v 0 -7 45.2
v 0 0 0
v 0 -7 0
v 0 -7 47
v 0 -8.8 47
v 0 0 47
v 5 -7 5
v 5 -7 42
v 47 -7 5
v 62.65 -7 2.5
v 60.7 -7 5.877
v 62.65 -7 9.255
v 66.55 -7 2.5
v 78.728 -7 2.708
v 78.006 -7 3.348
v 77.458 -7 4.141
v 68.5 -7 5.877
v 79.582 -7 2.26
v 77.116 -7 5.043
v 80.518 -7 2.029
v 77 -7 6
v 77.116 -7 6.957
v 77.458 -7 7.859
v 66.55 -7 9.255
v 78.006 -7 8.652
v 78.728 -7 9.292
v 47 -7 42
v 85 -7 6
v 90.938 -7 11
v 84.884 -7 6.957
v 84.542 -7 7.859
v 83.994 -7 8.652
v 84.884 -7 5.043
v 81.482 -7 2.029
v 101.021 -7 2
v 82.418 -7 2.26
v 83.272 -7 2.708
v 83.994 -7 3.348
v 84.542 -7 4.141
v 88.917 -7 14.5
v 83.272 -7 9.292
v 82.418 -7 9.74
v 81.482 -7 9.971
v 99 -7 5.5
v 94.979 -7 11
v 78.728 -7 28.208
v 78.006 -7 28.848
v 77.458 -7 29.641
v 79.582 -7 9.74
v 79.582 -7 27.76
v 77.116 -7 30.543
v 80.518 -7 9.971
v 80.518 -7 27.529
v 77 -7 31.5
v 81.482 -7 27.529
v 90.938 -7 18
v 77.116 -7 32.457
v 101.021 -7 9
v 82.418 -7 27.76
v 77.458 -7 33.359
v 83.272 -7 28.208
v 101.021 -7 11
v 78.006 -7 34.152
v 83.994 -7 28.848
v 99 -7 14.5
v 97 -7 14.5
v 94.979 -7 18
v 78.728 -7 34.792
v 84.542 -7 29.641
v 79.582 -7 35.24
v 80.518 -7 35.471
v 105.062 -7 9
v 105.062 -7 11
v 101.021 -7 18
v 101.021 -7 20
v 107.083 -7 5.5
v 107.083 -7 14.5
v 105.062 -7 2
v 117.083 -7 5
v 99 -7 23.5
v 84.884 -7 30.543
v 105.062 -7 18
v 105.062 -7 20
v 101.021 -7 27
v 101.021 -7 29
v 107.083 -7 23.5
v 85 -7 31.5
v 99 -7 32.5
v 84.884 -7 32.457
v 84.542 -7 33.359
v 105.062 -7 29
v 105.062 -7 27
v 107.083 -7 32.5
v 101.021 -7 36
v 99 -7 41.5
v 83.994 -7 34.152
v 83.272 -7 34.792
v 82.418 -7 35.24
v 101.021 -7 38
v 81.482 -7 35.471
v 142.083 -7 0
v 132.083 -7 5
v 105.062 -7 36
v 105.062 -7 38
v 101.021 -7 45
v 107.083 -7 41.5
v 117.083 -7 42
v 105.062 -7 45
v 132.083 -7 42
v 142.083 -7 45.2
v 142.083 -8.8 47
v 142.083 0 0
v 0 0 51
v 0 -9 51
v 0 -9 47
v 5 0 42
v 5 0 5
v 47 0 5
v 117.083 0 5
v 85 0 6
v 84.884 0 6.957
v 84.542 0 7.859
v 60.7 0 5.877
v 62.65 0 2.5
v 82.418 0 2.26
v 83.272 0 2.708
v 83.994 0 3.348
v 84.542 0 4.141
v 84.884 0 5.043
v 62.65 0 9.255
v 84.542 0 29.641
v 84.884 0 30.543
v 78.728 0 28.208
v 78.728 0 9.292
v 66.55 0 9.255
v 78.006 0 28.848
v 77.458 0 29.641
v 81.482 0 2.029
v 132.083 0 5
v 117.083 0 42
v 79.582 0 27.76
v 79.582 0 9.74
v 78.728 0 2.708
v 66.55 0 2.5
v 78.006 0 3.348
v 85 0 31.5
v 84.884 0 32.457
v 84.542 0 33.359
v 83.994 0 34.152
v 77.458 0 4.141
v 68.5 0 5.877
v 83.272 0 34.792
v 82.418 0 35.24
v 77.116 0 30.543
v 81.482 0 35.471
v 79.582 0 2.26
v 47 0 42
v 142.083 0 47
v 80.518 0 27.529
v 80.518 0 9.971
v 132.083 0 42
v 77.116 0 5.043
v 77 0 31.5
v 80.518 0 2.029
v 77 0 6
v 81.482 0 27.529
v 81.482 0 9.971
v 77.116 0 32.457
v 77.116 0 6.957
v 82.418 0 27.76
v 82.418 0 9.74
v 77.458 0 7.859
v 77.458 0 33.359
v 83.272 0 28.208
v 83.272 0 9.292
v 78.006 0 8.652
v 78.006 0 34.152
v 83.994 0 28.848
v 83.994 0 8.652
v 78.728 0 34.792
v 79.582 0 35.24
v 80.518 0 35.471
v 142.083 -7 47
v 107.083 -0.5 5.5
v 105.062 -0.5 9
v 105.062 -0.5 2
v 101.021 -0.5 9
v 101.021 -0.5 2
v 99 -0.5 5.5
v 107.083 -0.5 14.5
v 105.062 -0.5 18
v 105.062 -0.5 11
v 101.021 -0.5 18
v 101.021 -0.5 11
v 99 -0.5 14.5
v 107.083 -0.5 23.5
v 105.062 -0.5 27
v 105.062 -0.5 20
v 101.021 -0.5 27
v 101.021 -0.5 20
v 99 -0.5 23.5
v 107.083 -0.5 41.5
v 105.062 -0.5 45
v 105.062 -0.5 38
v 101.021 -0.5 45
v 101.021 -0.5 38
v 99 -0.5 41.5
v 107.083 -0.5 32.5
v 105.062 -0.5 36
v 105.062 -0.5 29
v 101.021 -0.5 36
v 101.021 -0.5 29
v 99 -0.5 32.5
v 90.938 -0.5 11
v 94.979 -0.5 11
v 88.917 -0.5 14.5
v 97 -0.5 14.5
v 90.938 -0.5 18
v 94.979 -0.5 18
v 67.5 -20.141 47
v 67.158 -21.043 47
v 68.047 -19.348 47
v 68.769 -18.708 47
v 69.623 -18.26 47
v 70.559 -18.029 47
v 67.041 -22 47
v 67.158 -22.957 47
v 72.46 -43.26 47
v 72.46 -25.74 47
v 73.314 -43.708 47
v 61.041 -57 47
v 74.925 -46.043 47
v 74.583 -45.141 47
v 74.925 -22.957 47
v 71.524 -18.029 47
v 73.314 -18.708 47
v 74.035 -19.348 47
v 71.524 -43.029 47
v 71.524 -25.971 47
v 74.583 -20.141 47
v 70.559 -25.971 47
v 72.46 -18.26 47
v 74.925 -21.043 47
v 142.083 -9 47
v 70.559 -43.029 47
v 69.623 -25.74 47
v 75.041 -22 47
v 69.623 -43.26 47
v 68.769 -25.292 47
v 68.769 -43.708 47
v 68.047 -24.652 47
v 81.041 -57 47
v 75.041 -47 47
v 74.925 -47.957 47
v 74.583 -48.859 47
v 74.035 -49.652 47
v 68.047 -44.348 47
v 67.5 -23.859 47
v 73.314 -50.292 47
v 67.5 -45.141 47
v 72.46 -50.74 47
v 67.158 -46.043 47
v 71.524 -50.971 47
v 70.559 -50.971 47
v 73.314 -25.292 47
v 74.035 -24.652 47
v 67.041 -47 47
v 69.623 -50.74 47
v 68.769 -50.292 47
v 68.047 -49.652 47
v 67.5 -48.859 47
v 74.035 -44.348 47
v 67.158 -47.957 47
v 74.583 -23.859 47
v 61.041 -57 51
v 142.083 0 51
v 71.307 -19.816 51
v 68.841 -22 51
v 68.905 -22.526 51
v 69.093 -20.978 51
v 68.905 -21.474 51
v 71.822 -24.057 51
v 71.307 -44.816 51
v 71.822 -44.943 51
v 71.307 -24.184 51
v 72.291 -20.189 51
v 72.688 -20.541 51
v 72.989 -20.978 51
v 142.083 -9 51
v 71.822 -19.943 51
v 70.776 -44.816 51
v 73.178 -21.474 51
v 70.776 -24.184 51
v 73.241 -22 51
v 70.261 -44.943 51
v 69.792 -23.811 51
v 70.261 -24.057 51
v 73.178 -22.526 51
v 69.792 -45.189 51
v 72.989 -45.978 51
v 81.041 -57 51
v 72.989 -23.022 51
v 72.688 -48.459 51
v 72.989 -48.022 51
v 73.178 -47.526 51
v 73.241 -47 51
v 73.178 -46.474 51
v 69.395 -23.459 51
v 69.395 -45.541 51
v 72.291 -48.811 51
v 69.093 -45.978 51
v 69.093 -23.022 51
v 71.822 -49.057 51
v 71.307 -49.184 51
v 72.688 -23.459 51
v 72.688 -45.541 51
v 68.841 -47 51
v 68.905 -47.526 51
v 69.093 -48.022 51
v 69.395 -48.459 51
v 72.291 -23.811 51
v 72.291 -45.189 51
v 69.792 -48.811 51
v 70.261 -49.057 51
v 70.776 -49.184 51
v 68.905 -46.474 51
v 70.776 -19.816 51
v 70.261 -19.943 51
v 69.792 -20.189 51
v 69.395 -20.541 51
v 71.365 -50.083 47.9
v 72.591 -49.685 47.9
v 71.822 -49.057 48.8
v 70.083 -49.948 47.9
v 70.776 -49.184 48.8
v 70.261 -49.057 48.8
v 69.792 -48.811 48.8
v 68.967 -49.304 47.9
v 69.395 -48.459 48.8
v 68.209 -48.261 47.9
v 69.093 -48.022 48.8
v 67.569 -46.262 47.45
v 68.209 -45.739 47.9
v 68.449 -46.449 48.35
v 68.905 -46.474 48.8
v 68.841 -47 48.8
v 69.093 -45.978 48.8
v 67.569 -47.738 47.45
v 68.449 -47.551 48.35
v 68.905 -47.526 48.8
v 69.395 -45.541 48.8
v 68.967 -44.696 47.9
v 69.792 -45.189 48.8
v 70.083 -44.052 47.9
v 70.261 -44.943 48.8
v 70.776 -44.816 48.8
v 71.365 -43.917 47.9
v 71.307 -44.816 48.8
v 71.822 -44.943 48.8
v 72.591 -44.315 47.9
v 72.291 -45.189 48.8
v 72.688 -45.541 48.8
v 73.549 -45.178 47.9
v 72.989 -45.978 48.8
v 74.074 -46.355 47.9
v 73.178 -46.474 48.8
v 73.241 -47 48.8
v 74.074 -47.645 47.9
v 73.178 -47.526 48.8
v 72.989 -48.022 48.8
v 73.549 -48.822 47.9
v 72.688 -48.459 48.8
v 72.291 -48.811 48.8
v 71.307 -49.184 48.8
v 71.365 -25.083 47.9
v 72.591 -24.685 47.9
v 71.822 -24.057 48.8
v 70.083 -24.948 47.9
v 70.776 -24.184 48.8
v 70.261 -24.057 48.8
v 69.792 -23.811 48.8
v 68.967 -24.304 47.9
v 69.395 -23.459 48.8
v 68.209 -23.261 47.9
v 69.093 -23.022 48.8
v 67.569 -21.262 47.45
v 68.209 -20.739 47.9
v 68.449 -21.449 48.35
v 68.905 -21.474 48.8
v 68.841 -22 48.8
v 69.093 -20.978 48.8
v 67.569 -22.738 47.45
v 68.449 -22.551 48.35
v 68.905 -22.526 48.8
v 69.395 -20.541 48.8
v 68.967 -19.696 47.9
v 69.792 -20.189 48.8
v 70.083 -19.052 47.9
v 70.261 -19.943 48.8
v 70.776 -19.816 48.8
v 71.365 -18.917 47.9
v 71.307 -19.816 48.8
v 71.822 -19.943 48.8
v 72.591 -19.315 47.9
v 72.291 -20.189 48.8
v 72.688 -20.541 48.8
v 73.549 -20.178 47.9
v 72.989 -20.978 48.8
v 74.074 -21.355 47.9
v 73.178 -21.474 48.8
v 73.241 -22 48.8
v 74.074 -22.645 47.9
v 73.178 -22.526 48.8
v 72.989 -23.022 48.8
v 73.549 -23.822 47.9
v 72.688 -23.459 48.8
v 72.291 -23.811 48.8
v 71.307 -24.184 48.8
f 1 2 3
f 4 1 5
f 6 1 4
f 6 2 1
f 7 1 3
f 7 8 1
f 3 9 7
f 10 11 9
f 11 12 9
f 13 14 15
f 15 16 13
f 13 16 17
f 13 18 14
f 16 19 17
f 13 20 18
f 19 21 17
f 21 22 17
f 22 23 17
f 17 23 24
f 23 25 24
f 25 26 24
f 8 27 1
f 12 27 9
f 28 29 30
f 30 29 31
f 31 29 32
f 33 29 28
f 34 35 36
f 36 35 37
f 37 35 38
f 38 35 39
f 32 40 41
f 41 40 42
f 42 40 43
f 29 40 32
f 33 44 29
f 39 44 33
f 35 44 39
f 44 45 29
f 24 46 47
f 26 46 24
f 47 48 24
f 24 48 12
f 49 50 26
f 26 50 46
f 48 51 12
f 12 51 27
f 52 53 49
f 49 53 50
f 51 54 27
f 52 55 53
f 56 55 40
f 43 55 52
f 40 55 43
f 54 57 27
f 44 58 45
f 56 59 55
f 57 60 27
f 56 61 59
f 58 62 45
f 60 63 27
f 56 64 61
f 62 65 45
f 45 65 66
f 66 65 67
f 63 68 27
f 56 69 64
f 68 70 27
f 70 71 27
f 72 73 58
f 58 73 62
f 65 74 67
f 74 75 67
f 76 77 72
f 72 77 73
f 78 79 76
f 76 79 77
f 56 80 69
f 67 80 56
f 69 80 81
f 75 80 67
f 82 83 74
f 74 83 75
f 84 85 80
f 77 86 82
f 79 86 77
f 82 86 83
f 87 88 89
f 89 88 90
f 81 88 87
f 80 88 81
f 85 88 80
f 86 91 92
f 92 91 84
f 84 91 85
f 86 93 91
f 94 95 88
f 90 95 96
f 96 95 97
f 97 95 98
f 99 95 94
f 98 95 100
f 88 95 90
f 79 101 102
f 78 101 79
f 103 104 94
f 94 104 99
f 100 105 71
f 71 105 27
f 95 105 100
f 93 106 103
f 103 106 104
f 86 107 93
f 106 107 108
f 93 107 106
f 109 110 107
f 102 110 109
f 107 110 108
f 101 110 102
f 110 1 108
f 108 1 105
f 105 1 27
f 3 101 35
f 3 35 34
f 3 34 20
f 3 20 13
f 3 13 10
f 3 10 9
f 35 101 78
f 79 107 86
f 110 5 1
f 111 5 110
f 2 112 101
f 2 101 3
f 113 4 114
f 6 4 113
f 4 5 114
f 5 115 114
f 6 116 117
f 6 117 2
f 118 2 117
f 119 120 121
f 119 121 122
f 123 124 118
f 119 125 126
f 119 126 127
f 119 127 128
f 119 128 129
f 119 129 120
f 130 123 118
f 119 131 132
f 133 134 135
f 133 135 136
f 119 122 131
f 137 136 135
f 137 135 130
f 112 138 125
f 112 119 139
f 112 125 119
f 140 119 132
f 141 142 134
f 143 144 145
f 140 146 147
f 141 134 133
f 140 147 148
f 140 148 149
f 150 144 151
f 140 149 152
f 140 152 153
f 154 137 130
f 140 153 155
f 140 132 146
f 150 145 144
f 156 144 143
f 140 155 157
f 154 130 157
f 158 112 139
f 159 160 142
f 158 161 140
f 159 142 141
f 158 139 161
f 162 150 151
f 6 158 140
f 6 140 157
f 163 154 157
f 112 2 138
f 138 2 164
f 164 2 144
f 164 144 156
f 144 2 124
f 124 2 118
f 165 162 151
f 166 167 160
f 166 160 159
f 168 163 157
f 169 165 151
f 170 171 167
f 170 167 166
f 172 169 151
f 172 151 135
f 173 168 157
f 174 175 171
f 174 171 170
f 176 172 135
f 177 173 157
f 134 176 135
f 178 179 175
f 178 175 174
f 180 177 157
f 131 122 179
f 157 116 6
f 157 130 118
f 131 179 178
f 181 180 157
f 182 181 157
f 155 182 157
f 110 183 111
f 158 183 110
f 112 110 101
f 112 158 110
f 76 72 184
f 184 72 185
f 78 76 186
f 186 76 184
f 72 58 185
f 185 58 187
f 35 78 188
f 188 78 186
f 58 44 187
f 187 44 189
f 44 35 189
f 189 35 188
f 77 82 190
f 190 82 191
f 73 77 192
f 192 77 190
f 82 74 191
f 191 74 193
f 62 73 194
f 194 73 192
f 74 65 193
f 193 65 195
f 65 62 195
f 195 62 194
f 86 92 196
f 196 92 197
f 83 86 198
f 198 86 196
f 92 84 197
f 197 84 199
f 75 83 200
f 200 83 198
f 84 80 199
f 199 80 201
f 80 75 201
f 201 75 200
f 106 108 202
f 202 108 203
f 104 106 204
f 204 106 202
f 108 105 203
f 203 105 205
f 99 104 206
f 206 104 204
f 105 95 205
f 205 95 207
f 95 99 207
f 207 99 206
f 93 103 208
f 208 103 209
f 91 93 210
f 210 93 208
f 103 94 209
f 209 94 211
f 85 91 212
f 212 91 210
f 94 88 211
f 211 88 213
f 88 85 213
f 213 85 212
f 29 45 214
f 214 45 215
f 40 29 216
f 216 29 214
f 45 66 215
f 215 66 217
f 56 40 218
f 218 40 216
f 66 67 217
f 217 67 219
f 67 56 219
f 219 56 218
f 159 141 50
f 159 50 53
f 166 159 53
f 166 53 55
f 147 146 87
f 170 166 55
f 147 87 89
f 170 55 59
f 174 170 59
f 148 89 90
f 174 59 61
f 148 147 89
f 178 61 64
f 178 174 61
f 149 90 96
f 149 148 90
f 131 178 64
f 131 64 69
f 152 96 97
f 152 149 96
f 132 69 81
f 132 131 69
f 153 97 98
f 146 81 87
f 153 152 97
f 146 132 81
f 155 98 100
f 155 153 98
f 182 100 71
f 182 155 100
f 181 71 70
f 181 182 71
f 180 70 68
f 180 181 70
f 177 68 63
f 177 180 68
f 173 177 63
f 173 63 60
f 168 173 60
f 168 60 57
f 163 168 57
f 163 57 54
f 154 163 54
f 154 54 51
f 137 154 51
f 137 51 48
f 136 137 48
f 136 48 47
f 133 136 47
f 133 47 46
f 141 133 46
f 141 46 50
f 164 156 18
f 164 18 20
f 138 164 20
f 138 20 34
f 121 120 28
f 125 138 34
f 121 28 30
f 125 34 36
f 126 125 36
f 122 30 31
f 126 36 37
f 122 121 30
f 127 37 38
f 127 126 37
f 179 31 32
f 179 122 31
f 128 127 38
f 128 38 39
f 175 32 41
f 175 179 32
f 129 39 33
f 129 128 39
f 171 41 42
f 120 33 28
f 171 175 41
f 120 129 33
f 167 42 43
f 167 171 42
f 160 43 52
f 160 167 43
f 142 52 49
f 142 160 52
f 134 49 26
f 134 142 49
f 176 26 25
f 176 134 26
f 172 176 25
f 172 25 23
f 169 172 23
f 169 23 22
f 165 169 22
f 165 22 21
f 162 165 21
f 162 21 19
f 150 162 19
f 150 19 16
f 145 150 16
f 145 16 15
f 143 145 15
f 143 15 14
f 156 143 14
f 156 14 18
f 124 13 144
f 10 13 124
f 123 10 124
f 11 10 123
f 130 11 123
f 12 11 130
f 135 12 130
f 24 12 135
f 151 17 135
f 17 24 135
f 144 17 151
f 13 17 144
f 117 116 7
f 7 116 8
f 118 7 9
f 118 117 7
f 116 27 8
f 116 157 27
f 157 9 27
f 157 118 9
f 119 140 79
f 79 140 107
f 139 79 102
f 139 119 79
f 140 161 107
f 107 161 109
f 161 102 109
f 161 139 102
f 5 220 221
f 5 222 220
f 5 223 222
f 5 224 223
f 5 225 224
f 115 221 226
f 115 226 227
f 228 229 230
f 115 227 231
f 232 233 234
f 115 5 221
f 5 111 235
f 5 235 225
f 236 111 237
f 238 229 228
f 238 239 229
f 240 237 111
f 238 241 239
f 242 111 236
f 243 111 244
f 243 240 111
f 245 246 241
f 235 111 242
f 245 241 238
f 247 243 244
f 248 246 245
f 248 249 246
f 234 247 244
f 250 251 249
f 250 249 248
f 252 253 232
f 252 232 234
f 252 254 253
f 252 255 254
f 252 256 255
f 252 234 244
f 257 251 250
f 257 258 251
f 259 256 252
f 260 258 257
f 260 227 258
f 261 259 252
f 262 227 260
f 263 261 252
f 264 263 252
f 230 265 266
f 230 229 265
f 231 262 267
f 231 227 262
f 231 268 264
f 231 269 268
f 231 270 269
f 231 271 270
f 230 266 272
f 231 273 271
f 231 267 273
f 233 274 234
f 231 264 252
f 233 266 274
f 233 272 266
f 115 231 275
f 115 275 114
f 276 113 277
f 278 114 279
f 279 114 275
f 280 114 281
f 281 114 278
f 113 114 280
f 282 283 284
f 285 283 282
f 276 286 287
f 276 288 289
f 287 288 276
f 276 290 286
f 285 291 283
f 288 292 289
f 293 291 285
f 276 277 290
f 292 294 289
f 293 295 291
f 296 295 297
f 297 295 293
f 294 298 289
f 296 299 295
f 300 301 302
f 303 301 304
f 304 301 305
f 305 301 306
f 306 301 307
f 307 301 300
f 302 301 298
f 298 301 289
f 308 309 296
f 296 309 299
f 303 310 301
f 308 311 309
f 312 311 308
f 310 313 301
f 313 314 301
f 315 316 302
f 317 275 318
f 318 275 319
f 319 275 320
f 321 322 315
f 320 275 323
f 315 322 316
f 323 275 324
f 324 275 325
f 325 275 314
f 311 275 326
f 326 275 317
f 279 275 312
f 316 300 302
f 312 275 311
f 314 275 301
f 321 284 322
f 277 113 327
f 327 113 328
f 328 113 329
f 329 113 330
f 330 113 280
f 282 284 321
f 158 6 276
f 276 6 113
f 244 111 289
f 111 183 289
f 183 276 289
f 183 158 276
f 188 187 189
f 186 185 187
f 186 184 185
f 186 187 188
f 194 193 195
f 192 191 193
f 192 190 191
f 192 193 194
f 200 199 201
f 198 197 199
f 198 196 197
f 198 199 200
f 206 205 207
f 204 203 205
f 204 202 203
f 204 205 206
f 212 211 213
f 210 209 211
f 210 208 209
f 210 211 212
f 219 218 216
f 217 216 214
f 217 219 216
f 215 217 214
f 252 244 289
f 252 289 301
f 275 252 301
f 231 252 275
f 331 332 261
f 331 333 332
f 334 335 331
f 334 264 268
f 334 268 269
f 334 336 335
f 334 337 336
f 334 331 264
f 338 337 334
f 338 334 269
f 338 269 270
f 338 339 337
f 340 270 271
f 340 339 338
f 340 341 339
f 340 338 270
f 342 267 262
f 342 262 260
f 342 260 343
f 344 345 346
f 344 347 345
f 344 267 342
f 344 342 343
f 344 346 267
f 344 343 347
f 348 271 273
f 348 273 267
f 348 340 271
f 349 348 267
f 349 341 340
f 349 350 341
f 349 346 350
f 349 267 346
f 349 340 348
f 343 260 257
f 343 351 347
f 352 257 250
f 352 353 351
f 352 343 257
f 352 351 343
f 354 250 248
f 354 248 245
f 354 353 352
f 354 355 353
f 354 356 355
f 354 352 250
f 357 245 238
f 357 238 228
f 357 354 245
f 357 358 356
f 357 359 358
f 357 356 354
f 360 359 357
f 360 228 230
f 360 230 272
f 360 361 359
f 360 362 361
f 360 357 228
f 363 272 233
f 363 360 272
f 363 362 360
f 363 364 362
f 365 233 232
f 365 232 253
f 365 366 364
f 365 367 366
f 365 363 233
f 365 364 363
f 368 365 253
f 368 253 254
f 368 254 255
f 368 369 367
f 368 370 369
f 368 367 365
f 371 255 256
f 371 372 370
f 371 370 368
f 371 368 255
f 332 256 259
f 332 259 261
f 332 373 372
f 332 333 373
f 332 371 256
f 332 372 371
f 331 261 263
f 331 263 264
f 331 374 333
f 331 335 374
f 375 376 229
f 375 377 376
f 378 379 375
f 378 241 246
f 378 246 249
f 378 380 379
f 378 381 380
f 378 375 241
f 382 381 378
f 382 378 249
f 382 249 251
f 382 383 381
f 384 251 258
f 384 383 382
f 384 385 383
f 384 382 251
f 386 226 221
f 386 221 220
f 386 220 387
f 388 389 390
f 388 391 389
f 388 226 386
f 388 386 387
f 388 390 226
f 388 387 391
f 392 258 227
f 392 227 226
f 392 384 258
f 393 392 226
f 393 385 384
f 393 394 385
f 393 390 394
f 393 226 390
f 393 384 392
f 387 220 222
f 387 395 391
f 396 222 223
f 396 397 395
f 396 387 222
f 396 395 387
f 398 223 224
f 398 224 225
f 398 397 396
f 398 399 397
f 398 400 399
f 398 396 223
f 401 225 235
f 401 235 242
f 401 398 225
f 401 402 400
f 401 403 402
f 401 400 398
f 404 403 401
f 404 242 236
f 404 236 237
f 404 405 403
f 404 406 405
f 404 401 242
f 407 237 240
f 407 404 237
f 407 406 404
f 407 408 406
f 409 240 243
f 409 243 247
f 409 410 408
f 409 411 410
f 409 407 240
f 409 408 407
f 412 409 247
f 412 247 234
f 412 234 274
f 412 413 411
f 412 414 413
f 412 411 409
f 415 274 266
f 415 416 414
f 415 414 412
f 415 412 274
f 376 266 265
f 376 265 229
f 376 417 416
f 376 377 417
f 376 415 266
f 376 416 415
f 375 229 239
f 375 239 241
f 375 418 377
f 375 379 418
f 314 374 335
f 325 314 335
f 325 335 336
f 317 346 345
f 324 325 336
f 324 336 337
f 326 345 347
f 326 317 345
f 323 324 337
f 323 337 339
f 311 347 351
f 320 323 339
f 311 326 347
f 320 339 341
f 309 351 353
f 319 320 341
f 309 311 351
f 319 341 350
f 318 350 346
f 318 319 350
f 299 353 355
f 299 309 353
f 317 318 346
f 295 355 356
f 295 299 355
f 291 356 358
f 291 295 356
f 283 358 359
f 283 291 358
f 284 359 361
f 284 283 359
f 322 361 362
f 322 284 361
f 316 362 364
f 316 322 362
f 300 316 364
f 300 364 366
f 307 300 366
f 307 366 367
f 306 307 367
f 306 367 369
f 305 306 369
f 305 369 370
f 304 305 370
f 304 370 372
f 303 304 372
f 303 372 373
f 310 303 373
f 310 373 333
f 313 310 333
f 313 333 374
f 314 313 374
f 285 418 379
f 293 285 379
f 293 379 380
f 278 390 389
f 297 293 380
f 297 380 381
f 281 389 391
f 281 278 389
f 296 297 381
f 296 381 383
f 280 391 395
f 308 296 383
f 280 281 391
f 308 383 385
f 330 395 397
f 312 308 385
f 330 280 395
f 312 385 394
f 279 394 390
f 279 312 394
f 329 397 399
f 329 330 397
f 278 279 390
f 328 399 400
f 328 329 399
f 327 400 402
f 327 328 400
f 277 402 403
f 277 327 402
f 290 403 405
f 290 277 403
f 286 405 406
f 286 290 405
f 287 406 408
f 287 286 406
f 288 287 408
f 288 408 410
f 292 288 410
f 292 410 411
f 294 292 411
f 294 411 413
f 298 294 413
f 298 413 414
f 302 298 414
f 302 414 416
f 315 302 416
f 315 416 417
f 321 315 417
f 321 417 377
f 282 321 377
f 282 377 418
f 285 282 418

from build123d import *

# Parameters (mm, degrees)
SKETCH_W            = 142.082904
SKETCH_H            = 47
SKETCH_R            = 4
SKETCH_W_2          = 42
SKETCH_H_2          = 37
SKETCH_W_3          = 15
PAD_DEPTH           = 7
POCKET_DEPTH        = 6.5
LINEARPATTERN_COUNT = 5
LINEARPATTERN_PITCH = 9
POCKET001_DEPTH     = 6.5
PAD001_DEPTH        = 4
CHAMFER_SIZE        = 1.8
HOLE_D              = 4.4
HOLE_DEPTH          = 25
HOLE_CSINK_D        = 8
HOLE_CSINK_ANGLE    = 90
POCKET002_DEPTH     = 7.001


with BuildPart() as part:
    # Sketch → Pad (new body)
    with BuildSketch(Plane.XZ):
        with Locations((71.041452, 23.5)):
            Rectangle(SKETCH_W, SKETCH_H)
        with Locations((81, 31.5)):
            Circle(SKETCH_R, mode=Mode.SUBTRACT)
        with Locations((81, 6)):
            Circle(SKETCH_R, mode=Mode.SUBTRACT)
        with Locations((26, 23.5)):
            Rectangle(SKETCH_W_2, SKETCH_H_2, mode=Mode.SUBTRACT)
        with Locations((124.582904, 23.5)):
            Rectangle(SKETCH_W_3, SKETCH_H_2, mode=Mode.SUBTRACT)
    extrude(amount=PAD_DEPTH)

    # Sketch001 (on Face16 of Pad) → Pocket (cut)
    with BuildSketch(Plane.XZ.offset(7)):
        Polygon((105.062178, 45), (101.020726, 45), (99, 41.5), (101.020726, 38), (105.062178, 38), (107.082904, 41.5), align=None)
    pocket = extrude(amount=-POCKET_DEPTH, mode=Mode.SUBTRACT)

    # LinearPattern: Pocket ×5
    with Locations(*[(0, 0, -i * LINEARPATTERN_PITCH) for i in range(1, LINEARPATTERN_COUNT)]):
        add(pocket, mode=Mode.SUBTRACT)

    # Sketch002 (on Face5 of LinearPattern) → Pocket001 (cut)
    with BuildSketch(Plane.XZ.offset(7)):
        Polygon((94.979274, 11), (97, 14.5), (94.979274, 18), (90.937822, 18), (88.917096, 14.5), (90.937822, 11), align=None)
    extrude(amount=-POCKET001_DEPTH, mode=Mode.SUBTRACT)

    # Sketch003 (on Face1 of Pocket001) → Pad001 (join)
    with BuildSketch(Plane(origin=(0, 0, 47), x_dir=(-1, 0, 0), z_dir=(0, 0, 1))):
        Polygon((-142.082904, 9), (-81.041452, 57), (-61.041452, 57), (0, 9), (0, 0), (-142.082904, 0), align=None)
    extrude(amount=PAD001_DEPTH)

    # Chamfer
    chamfer_edges = [part.edges().sort_by_distance(p)[0] for p in [
        (71.041452, -7, 47),
    ]]
    chamfer(chamfer_edges, length=CHAMFER_SIZE)

    # Hole
    with Locations(Plane(origin=(0, 0, 47), x_dir=(1, 0, 0), z_dir=(0, 0, -1))):
        with Locations((71.041452, 47), (71.041452, 22)):
            CounterSinkHole(HOLE_D / 2, HOLE_CSINK_D / 2, depth=HOLE_DEPTH, counter_sink_angle=HOLE_CSINK_ANGLE)

    # Sketch005 (on Face2 of Hole) → Pocket002 (cut, through all)
    with BuildSketch(Plane.XZ.offset(7)):
        Polygon((66.55, 2.5), (68.5, 5.877499), (66.55, 9.254998), (62.65, 9.254998), (60.7, 5.877499), (62.65, 2.5), align=None)
    extrude(amount=-POCKET002_DEPTH, mode=Mode.SUBTRACT)


solid = part.part
